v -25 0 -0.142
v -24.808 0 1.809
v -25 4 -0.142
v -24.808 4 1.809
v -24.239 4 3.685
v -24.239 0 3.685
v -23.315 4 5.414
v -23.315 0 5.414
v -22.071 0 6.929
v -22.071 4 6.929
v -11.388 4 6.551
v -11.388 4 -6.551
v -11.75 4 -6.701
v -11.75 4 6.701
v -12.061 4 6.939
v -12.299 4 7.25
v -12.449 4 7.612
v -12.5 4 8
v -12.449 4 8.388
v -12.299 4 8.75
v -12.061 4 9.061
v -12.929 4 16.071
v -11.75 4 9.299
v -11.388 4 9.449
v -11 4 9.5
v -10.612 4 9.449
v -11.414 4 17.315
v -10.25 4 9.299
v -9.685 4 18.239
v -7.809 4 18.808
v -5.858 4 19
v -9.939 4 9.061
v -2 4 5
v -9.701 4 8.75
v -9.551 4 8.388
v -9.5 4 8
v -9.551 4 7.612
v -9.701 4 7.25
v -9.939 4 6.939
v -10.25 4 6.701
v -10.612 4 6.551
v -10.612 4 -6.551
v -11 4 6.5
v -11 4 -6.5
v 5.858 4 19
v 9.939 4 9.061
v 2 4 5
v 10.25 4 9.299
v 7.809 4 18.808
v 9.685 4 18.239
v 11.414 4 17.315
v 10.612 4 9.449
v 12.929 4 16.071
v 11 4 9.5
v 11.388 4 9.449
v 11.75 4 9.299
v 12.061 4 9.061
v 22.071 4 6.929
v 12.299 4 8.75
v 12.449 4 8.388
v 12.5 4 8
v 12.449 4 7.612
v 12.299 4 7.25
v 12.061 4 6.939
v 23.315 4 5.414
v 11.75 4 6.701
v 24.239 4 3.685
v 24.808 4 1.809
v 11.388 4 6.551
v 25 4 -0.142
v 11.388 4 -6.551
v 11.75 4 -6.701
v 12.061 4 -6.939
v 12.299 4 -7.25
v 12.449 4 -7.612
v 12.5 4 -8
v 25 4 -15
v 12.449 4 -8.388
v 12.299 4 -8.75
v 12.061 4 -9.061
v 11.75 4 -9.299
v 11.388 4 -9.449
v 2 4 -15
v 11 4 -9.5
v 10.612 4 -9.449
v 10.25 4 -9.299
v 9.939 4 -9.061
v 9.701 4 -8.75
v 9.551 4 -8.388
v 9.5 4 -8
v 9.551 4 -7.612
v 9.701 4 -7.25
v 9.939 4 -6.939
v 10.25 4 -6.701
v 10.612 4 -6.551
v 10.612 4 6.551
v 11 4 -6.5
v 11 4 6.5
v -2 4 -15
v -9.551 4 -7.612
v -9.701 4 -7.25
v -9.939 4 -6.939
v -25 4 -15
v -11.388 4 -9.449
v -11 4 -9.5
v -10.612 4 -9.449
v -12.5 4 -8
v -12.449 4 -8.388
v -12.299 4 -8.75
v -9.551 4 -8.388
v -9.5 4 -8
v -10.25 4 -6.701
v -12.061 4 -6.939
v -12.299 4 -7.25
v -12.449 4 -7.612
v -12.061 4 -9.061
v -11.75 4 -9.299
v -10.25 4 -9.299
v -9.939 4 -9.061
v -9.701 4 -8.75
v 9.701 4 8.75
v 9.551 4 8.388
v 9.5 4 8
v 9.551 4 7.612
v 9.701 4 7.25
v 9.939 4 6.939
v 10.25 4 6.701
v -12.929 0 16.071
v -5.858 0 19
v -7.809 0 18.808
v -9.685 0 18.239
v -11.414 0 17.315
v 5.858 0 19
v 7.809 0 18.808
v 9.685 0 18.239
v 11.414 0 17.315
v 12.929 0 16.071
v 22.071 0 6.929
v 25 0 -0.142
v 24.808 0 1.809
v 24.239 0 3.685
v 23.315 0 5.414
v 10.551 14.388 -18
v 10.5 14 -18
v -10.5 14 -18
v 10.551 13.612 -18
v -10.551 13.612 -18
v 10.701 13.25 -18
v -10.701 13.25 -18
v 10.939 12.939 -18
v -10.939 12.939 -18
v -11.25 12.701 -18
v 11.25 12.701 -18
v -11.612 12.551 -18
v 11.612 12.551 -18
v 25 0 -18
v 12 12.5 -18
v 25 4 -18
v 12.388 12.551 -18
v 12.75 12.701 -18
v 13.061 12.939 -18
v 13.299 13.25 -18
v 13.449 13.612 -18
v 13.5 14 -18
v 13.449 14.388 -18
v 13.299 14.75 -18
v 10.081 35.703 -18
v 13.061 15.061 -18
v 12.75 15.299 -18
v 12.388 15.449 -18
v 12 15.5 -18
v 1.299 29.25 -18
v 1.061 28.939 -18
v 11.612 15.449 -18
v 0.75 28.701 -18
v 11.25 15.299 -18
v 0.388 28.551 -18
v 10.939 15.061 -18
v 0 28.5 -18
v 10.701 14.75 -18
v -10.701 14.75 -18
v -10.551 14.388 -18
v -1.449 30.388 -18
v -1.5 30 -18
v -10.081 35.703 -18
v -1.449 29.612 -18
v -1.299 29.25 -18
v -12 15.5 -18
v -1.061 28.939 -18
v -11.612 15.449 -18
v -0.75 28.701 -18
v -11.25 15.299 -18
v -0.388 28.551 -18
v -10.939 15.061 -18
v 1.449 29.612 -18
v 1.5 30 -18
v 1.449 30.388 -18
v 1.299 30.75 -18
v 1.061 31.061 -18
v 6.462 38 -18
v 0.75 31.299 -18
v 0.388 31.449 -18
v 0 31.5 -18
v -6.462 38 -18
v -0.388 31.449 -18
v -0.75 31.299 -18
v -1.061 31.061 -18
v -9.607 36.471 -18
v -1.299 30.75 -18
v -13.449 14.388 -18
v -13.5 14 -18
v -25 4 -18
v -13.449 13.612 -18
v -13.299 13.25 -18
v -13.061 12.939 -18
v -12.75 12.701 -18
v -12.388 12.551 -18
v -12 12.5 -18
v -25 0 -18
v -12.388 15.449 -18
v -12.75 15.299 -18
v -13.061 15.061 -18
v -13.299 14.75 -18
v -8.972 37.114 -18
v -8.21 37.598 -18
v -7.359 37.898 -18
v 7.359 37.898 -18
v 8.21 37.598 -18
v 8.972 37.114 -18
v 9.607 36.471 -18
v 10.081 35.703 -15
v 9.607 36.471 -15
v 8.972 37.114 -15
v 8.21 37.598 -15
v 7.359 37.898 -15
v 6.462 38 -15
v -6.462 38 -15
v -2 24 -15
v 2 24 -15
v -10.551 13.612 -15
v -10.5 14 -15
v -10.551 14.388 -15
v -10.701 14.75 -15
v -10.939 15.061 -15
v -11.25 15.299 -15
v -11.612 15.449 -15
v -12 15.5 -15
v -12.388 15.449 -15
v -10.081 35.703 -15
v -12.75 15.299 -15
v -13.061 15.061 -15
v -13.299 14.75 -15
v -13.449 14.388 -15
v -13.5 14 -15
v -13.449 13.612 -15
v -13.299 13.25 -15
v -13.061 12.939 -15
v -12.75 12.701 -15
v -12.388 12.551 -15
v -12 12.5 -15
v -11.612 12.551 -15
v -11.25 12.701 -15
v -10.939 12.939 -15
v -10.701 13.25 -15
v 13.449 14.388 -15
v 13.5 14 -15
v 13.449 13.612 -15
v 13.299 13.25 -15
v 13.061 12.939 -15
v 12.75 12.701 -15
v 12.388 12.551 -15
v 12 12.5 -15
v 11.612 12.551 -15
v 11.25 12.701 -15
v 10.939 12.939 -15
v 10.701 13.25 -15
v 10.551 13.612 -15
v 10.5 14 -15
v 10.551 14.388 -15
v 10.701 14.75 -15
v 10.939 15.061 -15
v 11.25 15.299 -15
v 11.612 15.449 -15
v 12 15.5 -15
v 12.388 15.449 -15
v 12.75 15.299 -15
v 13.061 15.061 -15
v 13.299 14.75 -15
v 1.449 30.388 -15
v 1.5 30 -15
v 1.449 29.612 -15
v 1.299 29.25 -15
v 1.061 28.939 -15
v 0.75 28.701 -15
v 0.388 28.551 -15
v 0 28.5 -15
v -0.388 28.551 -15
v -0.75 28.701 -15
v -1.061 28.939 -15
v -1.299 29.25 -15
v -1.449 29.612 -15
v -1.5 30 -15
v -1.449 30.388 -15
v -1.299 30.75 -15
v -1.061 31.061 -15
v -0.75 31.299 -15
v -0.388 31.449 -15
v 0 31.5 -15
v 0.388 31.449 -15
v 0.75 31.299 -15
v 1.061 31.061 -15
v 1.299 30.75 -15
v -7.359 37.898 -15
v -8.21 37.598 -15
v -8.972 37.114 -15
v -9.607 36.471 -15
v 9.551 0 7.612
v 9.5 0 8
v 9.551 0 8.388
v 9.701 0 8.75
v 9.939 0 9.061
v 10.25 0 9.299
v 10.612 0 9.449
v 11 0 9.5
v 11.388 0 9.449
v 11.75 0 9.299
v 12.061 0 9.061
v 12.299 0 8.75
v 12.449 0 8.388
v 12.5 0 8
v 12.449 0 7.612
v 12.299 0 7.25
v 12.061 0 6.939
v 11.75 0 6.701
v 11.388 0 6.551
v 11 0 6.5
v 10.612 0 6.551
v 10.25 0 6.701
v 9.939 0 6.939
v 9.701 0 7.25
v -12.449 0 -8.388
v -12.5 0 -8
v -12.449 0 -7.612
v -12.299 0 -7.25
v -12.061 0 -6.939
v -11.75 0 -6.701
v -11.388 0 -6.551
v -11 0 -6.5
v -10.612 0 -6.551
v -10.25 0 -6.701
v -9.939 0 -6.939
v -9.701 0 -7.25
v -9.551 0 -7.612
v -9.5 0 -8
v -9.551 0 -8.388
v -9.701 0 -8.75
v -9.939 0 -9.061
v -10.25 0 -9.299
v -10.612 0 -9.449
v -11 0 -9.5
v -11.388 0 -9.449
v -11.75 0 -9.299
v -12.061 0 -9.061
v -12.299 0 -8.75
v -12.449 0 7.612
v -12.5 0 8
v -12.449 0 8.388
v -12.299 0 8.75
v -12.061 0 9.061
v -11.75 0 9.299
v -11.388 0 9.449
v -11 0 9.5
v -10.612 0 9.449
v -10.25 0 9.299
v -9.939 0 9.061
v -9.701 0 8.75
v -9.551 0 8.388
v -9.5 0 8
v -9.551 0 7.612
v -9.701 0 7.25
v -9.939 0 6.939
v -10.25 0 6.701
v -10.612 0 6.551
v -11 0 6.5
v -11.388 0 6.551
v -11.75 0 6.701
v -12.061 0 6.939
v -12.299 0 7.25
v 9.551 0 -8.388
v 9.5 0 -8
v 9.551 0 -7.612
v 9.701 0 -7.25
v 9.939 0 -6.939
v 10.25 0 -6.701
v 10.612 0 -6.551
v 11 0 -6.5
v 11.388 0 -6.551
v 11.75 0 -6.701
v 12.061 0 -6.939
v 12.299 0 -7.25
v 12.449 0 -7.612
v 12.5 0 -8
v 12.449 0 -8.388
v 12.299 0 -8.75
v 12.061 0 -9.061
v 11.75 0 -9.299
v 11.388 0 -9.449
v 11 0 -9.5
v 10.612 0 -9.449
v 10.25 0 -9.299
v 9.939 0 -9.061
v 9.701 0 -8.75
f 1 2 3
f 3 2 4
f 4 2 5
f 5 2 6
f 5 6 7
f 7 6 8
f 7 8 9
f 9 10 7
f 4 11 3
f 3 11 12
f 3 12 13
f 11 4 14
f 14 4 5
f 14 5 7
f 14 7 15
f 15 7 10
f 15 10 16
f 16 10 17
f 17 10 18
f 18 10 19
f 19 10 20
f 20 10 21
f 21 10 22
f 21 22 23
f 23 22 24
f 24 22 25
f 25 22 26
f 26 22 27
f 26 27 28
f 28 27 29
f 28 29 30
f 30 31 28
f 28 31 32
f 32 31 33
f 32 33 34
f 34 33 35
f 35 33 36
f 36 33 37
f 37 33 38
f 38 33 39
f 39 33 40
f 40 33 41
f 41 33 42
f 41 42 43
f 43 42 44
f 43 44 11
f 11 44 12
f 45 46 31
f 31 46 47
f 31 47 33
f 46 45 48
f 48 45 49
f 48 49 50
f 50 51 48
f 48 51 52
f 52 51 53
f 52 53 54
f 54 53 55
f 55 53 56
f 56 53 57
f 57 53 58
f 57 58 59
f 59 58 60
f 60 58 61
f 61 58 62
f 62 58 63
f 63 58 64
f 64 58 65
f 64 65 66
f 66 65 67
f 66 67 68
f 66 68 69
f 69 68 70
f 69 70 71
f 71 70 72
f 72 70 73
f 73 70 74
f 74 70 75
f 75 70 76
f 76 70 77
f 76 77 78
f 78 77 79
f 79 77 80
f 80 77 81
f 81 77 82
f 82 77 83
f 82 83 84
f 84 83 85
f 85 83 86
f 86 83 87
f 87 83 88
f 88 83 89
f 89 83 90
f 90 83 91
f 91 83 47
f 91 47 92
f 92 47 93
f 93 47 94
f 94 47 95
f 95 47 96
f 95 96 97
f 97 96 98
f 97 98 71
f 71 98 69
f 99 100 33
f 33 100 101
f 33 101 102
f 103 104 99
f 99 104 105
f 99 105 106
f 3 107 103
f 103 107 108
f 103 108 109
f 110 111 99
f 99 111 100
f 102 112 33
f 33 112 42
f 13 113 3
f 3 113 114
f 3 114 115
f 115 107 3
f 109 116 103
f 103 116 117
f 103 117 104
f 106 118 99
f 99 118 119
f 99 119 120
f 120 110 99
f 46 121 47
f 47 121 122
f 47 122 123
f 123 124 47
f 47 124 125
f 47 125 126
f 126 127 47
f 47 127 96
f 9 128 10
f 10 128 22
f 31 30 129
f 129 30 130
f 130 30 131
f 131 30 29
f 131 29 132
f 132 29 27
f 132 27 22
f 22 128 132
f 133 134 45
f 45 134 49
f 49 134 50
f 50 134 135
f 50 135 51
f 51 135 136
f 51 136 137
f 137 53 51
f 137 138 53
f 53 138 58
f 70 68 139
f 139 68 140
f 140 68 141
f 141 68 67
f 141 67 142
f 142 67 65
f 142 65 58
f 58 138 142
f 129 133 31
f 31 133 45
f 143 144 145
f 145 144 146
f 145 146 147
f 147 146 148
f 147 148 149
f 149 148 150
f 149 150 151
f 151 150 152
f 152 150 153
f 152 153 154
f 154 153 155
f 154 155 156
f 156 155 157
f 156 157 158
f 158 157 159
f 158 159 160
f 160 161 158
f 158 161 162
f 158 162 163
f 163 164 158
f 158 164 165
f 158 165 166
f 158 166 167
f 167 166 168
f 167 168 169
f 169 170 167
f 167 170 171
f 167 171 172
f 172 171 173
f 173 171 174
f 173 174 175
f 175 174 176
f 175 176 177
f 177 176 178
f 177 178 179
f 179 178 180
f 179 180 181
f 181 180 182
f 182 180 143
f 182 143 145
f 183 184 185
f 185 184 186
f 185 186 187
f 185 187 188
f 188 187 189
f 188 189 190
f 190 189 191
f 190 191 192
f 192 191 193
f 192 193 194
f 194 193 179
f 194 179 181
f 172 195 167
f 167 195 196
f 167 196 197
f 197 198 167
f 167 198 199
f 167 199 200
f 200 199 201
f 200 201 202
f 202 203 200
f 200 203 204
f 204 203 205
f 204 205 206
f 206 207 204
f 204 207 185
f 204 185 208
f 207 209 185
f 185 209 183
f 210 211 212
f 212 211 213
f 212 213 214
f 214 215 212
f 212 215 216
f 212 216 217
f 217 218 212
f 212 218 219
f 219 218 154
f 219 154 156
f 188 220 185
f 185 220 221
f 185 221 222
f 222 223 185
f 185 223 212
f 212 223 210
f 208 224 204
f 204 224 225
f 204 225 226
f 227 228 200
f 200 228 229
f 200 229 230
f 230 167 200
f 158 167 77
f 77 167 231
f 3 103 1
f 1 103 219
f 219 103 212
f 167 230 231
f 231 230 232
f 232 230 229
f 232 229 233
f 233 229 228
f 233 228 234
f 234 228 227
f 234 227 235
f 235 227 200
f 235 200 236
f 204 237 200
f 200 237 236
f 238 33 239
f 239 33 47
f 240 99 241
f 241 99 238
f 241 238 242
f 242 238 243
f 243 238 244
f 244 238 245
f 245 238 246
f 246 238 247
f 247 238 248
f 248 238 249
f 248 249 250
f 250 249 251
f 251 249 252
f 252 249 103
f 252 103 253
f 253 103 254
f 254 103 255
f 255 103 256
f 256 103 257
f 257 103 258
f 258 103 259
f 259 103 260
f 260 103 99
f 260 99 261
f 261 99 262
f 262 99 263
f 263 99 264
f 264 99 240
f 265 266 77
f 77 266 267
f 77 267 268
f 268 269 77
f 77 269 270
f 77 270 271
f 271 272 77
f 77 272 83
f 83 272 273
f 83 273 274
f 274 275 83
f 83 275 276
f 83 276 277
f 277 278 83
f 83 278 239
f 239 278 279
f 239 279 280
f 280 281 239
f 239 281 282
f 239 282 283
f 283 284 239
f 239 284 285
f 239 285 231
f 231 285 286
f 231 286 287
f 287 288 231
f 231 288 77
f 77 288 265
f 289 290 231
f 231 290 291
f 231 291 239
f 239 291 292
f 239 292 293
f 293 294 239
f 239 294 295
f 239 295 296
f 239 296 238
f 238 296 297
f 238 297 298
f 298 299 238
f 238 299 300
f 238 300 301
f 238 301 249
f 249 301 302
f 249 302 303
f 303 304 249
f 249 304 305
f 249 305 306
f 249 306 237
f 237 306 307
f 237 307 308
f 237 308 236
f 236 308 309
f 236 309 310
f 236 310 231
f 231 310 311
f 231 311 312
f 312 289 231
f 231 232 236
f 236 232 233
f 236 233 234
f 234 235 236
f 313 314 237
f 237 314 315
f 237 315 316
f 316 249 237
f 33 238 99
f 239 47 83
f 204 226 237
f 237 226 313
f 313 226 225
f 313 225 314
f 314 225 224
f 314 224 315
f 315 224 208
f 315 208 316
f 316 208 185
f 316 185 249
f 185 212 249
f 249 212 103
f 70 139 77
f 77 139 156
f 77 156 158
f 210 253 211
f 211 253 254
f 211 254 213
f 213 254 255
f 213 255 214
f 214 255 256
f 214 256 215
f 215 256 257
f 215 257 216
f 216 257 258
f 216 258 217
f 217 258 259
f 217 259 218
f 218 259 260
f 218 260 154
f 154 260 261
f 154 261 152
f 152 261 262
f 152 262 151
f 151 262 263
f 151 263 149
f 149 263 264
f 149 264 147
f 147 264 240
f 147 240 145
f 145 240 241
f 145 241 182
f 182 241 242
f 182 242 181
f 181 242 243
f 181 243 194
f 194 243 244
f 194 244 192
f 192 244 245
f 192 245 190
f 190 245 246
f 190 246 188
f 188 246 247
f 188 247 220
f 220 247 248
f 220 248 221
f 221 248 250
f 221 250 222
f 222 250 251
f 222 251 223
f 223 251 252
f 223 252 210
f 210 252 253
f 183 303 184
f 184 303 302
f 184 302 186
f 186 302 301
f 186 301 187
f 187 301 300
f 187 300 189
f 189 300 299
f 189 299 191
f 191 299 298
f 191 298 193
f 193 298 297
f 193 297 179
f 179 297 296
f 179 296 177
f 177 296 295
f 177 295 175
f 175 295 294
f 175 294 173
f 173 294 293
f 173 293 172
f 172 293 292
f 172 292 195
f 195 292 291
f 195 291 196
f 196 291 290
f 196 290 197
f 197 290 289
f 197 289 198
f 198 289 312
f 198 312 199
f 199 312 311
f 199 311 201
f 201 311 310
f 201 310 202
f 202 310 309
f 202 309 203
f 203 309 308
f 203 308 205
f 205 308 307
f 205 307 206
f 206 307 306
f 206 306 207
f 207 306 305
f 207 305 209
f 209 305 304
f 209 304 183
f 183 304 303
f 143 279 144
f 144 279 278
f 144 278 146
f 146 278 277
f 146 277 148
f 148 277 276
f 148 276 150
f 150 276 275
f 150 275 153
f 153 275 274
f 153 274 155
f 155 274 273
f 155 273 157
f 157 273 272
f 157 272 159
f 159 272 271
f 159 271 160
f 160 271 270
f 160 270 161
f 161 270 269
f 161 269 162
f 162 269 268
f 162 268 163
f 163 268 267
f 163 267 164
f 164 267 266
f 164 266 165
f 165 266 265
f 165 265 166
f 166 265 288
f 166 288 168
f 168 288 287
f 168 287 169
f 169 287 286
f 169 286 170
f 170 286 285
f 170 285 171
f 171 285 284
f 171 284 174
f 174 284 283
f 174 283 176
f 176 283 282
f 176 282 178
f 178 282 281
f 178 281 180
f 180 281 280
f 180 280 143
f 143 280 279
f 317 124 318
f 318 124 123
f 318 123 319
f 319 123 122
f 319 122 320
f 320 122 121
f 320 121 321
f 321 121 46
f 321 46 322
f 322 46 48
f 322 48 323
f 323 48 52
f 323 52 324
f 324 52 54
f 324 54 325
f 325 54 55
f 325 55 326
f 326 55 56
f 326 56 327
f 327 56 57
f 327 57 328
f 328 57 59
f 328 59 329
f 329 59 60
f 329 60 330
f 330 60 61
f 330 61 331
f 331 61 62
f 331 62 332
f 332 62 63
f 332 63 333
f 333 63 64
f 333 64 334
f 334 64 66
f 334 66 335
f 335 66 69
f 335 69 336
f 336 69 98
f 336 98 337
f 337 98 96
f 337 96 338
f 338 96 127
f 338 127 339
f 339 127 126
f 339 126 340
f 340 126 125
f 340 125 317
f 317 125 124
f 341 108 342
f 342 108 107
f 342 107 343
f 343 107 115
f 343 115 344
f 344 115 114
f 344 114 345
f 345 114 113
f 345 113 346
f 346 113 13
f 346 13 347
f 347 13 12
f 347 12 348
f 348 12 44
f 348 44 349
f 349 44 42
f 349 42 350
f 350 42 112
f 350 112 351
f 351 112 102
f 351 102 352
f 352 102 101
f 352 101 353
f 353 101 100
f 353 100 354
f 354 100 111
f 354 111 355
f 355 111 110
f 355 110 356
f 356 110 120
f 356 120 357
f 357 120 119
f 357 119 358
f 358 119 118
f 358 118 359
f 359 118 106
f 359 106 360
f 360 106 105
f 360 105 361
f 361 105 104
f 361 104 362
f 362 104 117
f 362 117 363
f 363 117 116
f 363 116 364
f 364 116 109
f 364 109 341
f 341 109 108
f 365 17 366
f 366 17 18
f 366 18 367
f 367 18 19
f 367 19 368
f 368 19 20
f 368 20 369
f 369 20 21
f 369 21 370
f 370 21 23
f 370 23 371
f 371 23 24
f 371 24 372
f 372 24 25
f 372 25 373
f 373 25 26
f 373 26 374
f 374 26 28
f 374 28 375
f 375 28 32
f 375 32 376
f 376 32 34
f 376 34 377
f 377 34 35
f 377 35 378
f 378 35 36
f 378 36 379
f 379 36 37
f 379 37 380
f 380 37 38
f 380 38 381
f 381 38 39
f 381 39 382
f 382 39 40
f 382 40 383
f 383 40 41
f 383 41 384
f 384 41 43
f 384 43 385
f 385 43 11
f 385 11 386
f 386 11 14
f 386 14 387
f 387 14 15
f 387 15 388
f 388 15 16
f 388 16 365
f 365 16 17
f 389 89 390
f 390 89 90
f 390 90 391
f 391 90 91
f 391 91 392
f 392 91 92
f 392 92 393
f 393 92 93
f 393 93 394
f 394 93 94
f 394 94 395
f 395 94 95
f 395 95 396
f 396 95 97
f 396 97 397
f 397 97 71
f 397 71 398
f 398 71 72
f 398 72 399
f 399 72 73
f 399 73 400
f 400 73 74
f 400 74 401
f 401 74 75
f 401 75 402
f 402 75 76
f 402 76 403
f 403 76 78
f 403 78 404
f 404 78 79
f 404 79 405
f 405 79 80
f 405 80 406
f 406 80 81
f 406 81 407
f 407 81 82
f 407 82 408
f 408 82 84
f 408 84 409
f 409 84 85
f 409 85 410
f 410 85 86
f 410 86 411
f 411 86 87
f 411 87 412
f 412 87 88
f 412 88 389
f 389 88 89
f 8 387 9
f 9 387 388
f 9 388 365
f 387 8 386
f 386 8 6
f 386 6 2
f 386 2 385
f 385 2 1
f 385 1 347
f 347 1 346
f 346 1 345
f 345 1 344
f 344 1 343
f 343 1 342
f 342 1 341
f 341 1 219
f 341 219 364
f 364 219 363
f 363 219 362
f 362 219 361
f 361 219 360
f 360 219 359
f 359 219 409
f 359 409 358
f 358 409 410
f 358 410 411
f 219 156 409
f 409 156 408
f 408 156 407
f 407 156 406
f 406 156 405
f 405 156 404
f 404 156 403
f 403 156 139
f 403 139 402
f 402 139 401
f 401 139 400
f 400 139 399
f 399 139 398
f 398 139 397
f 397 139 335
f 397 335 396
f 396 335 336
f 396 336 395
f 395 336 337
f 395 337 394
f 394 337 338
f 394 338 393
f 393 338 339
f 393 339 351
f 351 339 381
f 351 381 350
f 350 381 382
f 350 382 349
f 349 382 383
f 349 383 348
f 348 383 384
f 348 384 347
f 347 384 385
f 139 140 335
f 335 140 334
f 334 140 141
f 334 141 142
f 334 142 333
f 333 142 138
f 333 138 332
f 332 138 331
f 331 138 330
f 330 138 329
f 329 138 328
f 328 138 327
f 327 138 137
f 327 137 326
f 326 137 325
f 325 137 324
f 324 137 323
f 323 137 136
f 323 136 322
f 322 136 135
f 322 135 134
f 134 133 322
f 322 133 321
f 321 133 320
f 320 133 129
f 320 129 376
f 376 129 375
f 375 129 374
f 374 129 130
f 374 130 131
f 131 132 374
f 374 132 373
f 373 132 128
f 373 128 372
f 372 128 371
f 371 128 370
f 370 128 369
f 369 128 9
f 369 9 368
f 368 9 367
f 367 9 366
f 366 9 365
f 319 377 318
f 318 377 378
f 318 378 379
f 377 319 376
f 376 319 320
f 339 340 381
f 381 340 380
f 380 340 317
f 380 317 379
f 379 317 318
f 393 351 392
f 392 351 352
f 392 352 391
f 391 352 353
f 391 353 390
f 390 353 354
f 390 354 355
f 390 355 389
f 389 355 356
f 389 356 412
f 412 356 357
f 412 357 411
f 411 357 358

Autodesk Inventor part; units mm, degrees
ref_plane "YZ Plane" through (0, 0, 0) normal (1, 0, 0) x (0, 1, 0)
ref_plane "XZ Plane" through (0, 0, 0) normal (0, 1, 0) x (-1, 0, 0)
ref_plane "XY Plane" through (0, 0, 0) normal (0, 0, 1) x (1, 0, 0)
sketch "Szkic1" plane through (0, 0, 0) normal (0, 1, 0) x (-1, 0, 0)
  line L0 (25, 19) -> (-25, 19)
  line L1 (-25, 19) -> (-25, -19)
  line L2 (-25, -19) -> (25, -19)
  line L3 (25, -19) -> (25, 19)
  line L4 (25, 19) -> (-25, -19) construction
  line L5 (-25, 19) -> (25, -19) construction
  point P0 (0, 0)
  dimension "d0" = 50
  dimension "d1" = 38
extrude "Wyciągnięcie proste1" add sketch "Szkic1" along normal blind 4
sketch "Szkic2" plane through (0, 4, 0) normal (0, 1, 0) x (1, 0, 0)
  line L0 (-25, 19) -> (-25, -19) projected
  line L1 (25, -19) -> (25, 19) projected
  line L2 (-25, 19) -> (25, 19)
  line L3 (25, 19) -> (25, 15)
  line L4 (25, 15) -> (-25, 15)
  line L5 (-25, 15) -> (-25, 19)
  point P0 (0, 0)
  dimension "d4" = 4
extrude "Wyciągnięcie proste2" add sketch "Szkic2" along normal blind 34
sketch "Szkic3" plane through (0, 4, 0) normal (0, 1, 0) x (1, 0, 0)
  line L0 (25, -19) -> (25, 19) projected
  line L1 (25, 0) -> (-25, 0) construction
  line L2 (-25, 19) -> (-25, -19) projected
  line L3 (-25, 15) -> (25, 15) projected
  line L4 (0, 15) -> (0, -19) construction
  line L5 (0, -15) -> (0, 19) construction
  point P0 (0, 0)
  point P1 (-11, 8)
  point P2 (-11, -8)
  point P3 (11, 8)
  point P4 (11, -8)
  dimension "d7" = 8
  dimension "d8" = 11
hole "Otwór1" at (-11, 4, -8) at (-11, 4, 8) at (11, 4, 8) at (11, 4, -8) direction (0, -1, 0) diameter 3 depth 8 tip angle 118
sketch "Szkic4" plane through (-25, 4, -15) normal (0, 0, 1) x (1, 0, 0)
  line L0 (50, 34) -> (0, 34) projected
  line L1 (0, 0) -> (0, 34) projected
  line L2 (50, 0) -> (0, 0) projected
  line L3 (25, 34) -> (25, 0) construction
  point P0 (25, -4)
  point P1 (25, 26)
  point P2 (13, 10)
  point P3 (37, 10)
  dimension "d16" = 8
  dimension "d17" = 25
  dimension "d18" = 13
  dimension "d19" = 10
hole "Otwór2" at (0, 30, -15) at (-12, 14, -15) at (12, 14, -15) direction (0, 0, -1) diameter 3 depth 8 tip angle 118
sketch "Szkic5" plane through (-25, 4, -15) normal (0, 0, 1) x (1, 0, 0)
  line L0 (0, 34) -> (50, 34) projected
  line L1 (50, 0) -> (50, 34) projected
  line L2 (50, 0) -> (0, 0) projected
  line L3 (34, 34) -> (50, 0)
  line L4 (34, 34) -> (50, 34)
  line L5 (50, 34) -> (50, 0)
  line L6 (25, 34) -> (25, 0) construction
  line L7 (50, 34) -> (0, 34)
  line L8 (0, 0) -> (0, 34)
  line L9 (0, 0) -> (50, 0)
  line L10 (16, 34) -> (0, 0)
  line L11 (16, 34) -> (0, 34)
  line L12 (0, 34) -> (0, 0)
  point P0 (25, -4)
  dimension "d27" = 16
extrude "Wyciągnięcie proste3" cut sketch "Szkic5" against normal blind 34 contours L0 L10 L8 | L0 L1 L3
fillet "Zaokrąglenie1" radius 4 2 edges at (-9, 38, -17) (9, 38, -17)
sketch "Szkic7" plane through (0, 4, 0) normal (0, 1, 0) x (1, 0, 0)
  line L0 (25, 15) -> (-25, 15) projected
  line L1 (-2, 15) -> (2, 15)
  line L2 (2, 15) -> (2, -5)
  line L3 (2, -5) -> (-2, -5)
  line L4 (-2, -5) -> (-2, 15)
  point P0 (0, 0)
  dimension "d31" = 4
  dimension "d32" = 20
  dimension "d33" = 2
extrude "Wyciągnięcie proste4" add sketch "Szkic7" along normal blind 20
sketch "Szkic8" plane through (2, 4, 5) normal (1, 0, 0) x (0, 0, -1)
  line L0 (20, 20) -> (0, 20) projected
  line L1 (20, 20) -> (0, 0)
  line L2 (0, 0) -> (0, 20)
  line L3 (-14, -4) -> (24, -4) projected
  line L4 (0, 20) -> (20, 20)
  point P0 (5, -4)
extrude "Wyciągnięcie proste5" cut sketch "Szkic8" against normal blind 18
sketch "Szkic9" plane through (25, 0, 19) normal (1, 0, 0) x (0, 0, -1)
  line L0 (38, 0) -> (0, 0) projected
  line L1 (38, 0) -> (37, 0)
  line L2 (37, 0) -> (37, 38)
  line L3 (37, 38) -> (38, 38)
  line L4 (38, 38) -> (38, 0)
  point P0 (19, 0)
  dimension "d38" = 1
  dimension "d39" = 38
extrude "Wyciągnięcie proste6" cut sketch "Szkic9" against normal through all
chamfer "Faza1" distance 15 angle 45 2 edges at (25, 2, 19) (-25, 2, 19)
fillet "Zaokrąglenie2" radius 10 4 edges at (25, 2, 4) (10, 2, 19) (-10, 2, 19) (-25, 2, 4)
properties part number "Wspornik" material "Tworzywo sztuczne PET"
